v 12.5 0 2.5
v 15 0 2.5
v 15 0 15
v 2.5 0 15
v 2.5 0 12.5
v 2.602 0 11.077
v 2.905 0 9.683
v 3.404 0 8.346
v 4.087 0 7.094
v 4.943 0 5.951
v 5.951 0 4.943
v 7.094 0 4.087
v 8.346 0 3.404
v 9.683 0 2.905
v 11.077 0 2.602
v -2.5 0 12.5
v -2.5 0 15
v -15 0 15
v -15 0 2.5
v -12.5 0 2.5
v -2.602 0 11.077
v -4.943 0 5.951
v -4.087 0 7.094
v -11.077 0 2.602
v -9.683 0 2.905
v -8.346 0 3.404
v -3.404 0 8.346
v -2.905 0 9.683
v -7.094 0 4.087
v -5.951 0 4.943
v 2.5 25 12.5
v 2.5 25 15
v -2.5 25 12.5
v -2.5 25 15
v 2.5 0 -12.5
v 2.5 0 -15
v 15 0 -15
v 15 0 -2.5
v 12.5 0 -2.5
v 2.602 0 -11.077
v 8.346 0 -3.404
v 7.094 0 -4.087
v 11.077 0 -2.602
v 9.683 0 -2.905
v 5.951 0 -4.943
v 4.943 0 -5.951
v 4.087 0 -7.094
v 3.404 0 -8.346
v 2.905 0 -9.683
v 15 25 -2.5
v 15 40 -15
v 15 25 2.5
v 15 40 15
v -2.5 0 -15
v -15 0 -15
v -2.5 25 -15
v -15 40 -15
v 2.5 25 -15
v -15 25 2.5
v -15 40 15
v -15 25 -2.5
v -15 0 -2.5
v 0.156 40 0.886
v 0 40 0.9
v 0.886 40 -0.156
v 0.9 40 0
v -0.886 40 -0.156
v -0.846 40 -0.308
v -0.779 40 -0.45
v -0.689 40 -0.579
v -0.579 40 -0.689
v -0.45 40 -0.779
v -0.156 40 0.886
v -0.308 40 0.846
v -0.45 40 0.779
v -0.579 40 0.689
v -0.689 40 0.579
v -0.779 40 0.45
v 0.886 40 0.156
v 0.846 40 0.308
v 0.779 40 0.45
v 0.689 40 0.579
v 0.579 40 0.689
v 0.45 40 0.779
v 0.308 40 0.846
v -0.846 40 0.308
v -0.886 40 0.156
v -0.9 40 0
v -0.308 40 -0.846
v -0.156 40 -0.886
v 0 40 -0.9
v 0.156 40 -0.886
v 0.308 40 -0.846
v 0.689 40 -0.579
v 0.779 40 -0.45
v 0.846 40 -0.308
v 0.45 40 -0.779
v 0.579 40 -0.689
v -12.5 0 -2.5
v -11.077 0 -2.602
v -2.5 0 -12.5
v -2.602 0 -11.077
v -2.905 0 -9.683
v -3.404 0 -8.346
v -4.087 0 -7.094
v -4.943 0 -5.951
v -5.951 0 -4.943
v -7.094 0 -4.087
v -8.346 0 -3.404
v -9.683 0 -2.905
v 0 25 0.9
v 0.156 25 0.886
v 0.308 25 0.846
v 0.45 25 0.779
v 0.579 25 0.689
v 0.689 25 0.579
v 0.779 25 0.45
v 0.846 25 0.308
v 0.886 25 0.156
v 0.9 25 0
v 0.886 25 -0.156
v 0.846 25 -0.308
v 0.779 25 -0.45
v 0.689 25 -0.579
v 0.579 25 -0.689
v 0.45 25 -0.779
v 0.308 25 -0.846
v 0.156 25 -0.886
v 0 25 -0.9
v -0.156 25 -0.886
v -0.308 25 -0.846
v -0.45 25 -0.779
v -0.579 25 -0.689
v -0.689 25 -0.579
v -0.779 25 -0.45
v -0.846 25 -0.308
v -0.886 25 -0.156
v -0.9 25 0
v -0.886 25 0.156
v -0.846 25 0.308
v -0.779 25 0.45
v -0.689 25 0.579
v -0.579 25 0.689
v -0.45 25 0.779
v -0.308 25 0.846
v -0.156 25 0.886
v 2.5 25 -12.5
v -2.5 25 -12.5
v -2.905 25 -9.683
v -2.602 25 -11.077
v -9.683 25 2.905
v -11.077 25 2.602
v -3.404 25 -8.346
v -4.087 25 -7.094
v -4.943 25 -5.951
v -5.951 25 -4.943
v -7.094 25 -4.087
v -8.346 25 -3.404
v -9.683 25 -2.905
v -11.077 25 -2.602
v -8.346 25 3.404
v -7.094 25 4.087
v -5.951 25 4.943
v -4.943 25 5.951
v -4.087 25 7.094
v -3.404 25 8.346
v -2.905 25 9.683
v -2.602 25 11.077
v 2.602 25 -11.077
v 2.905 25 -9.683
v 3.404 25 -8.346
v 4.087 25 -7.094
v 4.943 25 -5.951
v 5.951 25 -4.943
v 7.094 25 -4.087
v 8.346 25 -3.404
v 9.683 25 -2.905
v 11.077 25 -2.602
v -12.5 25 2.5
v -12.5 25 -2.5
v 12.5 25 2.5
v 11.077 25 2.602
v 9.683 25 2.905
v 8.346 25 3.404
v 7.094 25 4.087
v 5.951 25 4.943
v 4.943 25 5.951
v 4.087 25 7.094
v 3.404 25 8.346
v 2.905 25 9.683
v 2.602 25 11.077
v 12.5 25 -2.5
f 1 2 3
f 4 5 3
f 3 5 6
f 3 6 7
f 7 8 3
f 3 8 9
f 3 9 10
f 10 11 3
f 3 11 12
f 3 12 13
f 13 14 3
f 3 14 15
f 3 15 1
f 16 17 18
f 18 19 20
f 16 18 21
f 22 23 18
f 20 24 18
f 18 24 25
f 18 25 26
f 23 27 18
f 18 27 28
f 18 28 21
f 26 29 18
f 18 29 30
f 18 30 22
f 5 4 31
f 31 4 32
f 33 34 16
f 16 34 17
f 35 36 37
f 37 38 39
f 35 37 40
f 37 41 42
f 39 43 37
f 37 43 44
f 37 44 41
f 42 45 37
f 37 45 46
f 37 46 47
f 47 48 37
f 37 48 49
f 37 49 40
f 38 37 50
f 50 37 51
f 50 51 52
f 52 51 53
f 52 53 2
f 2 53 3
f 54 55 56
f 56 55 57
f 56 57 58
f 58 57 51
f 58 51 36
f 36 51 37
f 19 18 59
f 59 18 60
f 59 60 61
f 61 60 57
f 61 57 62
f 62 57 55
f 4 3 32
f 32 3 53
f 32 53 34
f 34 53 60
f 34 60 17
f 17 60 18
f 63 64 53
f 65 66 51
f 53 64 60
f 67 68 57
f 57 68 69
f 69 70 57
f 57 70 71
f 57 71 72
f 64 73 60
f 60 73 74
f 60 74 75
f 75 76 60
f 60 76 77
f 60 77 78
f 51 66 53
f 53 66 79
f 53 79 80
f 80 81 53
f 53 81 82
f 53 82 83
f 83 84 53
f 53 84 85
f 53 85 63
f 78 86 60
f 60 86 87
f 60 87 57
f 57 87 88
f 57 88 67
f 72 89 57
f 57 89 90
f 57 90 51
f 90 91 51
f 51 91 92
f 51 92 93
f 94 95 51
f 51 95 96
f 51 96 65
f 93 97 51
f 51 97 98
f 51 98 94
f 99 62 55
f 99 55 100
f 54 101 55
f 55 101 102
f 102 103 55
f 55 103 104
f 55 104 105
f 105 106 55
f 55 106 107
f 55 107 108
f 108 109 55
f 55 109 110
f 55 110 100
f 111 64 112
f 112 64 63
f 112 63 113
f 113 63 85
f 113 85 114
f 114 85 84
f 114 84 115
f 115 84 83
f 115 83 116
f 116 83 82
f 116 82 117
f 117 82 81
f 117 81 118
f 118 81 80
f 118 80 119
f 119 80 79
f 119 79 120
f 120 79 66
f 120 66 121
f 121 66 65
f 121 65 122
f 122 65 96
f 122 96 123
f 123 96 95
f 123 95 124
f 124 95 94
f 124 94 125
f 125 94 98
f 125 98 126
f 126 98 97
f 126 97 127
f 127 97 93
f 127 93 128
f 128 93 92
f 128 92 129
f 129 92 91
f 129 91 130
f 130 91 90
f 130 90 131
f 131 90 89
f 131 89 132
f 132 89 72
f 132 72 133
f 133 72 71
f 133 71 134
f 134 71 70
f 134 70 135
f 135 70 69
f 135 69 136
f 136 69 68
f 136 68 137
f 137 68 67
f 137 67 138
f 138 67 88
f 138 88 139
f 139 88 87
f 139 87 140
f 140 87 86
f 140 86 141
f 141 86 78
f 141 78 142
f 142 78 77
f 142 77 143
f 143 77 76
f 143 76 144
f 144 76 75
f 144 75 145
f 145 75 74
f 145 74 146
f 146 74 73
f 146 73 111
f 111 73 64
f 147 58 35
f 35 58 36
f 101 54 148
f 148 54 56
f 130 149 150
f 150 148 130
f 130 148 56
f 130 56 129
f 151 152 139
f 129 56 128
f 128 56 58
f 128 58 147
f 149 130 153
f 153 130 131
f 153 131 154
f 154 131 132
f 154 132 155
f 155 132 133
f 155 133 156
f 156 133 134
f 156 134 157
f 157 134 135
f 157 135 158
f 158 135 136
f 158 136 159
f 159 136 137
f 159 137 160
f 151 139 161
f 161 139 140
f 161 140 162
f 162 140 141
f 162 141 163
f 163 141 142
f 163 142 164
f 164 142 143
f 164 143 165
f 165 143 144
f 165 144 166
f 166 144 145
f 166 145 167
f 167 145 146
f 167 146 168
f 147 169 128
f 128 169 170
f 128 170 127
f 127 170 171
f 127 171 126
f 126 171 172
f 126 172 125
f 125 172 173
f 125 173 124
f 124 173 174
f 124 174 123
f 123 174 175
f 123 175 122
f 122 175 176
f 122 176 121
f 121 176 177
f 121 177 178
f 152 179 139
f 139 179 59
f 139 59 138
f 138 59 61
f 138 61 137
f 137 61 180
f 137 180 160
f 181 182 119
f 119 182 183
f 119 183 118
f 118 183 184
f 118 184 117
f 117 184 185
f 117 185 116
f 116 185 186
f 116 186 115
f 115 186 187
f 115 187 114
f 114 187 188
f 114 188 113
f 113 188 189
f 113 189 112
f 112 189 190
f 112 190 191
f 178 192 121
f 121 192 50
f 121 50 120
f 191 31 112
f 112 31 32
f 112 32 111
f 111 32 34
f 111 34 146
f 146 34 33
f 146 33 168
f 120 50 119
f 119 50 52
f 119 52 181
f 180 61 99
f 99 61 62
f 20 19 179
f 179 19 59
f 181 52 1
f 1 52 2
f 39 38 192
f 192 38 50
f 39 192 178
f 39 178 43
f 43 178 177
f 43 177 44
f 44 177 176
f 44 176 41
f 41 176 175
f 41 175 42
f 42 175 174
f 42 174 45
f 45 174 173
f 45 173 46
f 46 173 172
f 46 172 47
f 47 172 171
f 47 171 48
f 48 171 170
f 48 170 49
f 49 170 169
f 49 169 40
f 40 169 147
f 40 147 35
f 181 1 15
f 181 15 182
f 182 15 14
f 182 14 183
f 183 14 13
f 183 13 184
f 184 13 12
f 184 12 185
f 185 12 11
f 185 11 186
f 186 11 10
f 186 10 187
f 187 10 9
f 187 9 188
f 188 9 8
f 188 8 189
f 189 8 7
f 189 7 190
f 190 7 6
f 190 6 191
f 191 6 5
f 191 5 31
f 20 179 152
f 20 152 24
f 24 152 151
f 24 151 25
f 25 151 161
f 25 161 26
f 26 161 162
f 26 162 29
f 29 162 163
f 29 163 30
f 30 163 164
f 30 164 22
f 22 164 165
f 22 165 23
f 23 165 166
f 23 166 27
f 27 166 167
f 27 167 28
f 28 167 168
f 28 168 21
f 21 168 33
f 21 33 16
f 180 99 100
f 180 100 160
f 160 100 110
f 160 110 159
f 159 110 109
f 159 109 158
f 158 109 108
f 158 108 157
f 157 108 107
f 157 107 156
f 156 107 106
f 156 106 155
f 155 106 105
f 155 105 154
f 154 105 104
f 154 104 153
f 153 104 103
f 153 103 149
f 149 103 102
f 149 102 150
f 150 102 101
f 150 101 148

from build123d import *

# Parameters (mm, degrees)
SKETCH1_W           = 30
SKETCH1_H           = 30
BOSS_EXTRUDE1_DEPTH = 40
CUT_EXTRUDE1_REACH  = 42
SKETCH2_R           = 0.9
CUT_EXTRUDE2_REACH  = 32
SKETCH3_W           = 5
SKETCH3_H           = 25
SKETCH4_W           = 5
SKETCH4_H           = 25
CUT_EXTRUDE3_DEPTH  = 30
FILLET1_R           = 10


with BuildPart() as part:
    # Sketch1 → Boss-Extrude1 (new body)
    with BuildSketch(Plane(origin=(0, 0, 0), x_dir=(1, 0, 0), z_dir=(0, 1, 0))):
        Rectangle(SKETCH1_W, SKETCH1_H)
    extrude(amount=BOSS_EXTRUDE1_DEPTH)

    # Sketch2 → Cut-Extrude1 (cut, up to next)
    with BuildSketch(Plane(origin=(0, 40, 0), x_dir=(1, 0, 0), z_dir=(0, 1, 0)), mode=Mode.PRIVATE) as cut_extrude1_sk1:
        Circle(SKETCH2_R)
    cut_extrude1_tool1 = extrude(cut_extrude1_sk1.sketch, amount=-CUT_EXTRUDE1_REACH, mode=Mode.PRIVATE) & part.part
    add(cut_extrude1_tool1.solids().sort_by_distance((0, 40, 0))[0], mode=Mode.SUBTRACT)

    # Sketch3 → Cut-Extrude2 (cut, up to next)
    with BuildSketch(Plane(origin=(0, 0, -15), x_dir=(-1, 0, 0), z_dir=(0, 0, -1)), mode=Mode.PRIVATE) as cut_extrude2_sk1:
        with Locations((0, 12.5)):
            Rectangle(SKETCH3_W, SKETCH3_H)
    cut_extrude2_tool1 = extrude(cut_extrude2_sk1.sketch, amount=-CUT_EXTRUDE2_REACH, mode=Mode.PRIVATE) & part.part
    add(cut_extrude2_tool1.solids().sort_by_distance((0, 12.5, -15))[0], mode=Mode.SUBTRACT)

    # Sketch4 → Cut-Extrude3 (cut)
    with BuildSketch(Plane(origin=(15, 0, 0), x_dir=(0, 0, -1), z_dir=(1, 0, 0))):
        with Locations((0, 12.5)):
            Rectangle(SKETCH4_W, SKETCH4_H)
    extrude(amount=-CUT_EXTRUDE3_DEPTH, mode=Mode.SUBTRACT)

    # Fillet1
    fillet1_edges = [part.edges().sort_by_distance(p)[0] for p in [
        (2.5, 12.5, 2.5),
        (-2.5, 12.5, 2.5),
        (2.5, 12.5, -2.5),
        (-2.5, 12.5, -2.5),
    ]]
    fillet(fillet1_edges, radius=FILLET1_R)


solid = part.part
